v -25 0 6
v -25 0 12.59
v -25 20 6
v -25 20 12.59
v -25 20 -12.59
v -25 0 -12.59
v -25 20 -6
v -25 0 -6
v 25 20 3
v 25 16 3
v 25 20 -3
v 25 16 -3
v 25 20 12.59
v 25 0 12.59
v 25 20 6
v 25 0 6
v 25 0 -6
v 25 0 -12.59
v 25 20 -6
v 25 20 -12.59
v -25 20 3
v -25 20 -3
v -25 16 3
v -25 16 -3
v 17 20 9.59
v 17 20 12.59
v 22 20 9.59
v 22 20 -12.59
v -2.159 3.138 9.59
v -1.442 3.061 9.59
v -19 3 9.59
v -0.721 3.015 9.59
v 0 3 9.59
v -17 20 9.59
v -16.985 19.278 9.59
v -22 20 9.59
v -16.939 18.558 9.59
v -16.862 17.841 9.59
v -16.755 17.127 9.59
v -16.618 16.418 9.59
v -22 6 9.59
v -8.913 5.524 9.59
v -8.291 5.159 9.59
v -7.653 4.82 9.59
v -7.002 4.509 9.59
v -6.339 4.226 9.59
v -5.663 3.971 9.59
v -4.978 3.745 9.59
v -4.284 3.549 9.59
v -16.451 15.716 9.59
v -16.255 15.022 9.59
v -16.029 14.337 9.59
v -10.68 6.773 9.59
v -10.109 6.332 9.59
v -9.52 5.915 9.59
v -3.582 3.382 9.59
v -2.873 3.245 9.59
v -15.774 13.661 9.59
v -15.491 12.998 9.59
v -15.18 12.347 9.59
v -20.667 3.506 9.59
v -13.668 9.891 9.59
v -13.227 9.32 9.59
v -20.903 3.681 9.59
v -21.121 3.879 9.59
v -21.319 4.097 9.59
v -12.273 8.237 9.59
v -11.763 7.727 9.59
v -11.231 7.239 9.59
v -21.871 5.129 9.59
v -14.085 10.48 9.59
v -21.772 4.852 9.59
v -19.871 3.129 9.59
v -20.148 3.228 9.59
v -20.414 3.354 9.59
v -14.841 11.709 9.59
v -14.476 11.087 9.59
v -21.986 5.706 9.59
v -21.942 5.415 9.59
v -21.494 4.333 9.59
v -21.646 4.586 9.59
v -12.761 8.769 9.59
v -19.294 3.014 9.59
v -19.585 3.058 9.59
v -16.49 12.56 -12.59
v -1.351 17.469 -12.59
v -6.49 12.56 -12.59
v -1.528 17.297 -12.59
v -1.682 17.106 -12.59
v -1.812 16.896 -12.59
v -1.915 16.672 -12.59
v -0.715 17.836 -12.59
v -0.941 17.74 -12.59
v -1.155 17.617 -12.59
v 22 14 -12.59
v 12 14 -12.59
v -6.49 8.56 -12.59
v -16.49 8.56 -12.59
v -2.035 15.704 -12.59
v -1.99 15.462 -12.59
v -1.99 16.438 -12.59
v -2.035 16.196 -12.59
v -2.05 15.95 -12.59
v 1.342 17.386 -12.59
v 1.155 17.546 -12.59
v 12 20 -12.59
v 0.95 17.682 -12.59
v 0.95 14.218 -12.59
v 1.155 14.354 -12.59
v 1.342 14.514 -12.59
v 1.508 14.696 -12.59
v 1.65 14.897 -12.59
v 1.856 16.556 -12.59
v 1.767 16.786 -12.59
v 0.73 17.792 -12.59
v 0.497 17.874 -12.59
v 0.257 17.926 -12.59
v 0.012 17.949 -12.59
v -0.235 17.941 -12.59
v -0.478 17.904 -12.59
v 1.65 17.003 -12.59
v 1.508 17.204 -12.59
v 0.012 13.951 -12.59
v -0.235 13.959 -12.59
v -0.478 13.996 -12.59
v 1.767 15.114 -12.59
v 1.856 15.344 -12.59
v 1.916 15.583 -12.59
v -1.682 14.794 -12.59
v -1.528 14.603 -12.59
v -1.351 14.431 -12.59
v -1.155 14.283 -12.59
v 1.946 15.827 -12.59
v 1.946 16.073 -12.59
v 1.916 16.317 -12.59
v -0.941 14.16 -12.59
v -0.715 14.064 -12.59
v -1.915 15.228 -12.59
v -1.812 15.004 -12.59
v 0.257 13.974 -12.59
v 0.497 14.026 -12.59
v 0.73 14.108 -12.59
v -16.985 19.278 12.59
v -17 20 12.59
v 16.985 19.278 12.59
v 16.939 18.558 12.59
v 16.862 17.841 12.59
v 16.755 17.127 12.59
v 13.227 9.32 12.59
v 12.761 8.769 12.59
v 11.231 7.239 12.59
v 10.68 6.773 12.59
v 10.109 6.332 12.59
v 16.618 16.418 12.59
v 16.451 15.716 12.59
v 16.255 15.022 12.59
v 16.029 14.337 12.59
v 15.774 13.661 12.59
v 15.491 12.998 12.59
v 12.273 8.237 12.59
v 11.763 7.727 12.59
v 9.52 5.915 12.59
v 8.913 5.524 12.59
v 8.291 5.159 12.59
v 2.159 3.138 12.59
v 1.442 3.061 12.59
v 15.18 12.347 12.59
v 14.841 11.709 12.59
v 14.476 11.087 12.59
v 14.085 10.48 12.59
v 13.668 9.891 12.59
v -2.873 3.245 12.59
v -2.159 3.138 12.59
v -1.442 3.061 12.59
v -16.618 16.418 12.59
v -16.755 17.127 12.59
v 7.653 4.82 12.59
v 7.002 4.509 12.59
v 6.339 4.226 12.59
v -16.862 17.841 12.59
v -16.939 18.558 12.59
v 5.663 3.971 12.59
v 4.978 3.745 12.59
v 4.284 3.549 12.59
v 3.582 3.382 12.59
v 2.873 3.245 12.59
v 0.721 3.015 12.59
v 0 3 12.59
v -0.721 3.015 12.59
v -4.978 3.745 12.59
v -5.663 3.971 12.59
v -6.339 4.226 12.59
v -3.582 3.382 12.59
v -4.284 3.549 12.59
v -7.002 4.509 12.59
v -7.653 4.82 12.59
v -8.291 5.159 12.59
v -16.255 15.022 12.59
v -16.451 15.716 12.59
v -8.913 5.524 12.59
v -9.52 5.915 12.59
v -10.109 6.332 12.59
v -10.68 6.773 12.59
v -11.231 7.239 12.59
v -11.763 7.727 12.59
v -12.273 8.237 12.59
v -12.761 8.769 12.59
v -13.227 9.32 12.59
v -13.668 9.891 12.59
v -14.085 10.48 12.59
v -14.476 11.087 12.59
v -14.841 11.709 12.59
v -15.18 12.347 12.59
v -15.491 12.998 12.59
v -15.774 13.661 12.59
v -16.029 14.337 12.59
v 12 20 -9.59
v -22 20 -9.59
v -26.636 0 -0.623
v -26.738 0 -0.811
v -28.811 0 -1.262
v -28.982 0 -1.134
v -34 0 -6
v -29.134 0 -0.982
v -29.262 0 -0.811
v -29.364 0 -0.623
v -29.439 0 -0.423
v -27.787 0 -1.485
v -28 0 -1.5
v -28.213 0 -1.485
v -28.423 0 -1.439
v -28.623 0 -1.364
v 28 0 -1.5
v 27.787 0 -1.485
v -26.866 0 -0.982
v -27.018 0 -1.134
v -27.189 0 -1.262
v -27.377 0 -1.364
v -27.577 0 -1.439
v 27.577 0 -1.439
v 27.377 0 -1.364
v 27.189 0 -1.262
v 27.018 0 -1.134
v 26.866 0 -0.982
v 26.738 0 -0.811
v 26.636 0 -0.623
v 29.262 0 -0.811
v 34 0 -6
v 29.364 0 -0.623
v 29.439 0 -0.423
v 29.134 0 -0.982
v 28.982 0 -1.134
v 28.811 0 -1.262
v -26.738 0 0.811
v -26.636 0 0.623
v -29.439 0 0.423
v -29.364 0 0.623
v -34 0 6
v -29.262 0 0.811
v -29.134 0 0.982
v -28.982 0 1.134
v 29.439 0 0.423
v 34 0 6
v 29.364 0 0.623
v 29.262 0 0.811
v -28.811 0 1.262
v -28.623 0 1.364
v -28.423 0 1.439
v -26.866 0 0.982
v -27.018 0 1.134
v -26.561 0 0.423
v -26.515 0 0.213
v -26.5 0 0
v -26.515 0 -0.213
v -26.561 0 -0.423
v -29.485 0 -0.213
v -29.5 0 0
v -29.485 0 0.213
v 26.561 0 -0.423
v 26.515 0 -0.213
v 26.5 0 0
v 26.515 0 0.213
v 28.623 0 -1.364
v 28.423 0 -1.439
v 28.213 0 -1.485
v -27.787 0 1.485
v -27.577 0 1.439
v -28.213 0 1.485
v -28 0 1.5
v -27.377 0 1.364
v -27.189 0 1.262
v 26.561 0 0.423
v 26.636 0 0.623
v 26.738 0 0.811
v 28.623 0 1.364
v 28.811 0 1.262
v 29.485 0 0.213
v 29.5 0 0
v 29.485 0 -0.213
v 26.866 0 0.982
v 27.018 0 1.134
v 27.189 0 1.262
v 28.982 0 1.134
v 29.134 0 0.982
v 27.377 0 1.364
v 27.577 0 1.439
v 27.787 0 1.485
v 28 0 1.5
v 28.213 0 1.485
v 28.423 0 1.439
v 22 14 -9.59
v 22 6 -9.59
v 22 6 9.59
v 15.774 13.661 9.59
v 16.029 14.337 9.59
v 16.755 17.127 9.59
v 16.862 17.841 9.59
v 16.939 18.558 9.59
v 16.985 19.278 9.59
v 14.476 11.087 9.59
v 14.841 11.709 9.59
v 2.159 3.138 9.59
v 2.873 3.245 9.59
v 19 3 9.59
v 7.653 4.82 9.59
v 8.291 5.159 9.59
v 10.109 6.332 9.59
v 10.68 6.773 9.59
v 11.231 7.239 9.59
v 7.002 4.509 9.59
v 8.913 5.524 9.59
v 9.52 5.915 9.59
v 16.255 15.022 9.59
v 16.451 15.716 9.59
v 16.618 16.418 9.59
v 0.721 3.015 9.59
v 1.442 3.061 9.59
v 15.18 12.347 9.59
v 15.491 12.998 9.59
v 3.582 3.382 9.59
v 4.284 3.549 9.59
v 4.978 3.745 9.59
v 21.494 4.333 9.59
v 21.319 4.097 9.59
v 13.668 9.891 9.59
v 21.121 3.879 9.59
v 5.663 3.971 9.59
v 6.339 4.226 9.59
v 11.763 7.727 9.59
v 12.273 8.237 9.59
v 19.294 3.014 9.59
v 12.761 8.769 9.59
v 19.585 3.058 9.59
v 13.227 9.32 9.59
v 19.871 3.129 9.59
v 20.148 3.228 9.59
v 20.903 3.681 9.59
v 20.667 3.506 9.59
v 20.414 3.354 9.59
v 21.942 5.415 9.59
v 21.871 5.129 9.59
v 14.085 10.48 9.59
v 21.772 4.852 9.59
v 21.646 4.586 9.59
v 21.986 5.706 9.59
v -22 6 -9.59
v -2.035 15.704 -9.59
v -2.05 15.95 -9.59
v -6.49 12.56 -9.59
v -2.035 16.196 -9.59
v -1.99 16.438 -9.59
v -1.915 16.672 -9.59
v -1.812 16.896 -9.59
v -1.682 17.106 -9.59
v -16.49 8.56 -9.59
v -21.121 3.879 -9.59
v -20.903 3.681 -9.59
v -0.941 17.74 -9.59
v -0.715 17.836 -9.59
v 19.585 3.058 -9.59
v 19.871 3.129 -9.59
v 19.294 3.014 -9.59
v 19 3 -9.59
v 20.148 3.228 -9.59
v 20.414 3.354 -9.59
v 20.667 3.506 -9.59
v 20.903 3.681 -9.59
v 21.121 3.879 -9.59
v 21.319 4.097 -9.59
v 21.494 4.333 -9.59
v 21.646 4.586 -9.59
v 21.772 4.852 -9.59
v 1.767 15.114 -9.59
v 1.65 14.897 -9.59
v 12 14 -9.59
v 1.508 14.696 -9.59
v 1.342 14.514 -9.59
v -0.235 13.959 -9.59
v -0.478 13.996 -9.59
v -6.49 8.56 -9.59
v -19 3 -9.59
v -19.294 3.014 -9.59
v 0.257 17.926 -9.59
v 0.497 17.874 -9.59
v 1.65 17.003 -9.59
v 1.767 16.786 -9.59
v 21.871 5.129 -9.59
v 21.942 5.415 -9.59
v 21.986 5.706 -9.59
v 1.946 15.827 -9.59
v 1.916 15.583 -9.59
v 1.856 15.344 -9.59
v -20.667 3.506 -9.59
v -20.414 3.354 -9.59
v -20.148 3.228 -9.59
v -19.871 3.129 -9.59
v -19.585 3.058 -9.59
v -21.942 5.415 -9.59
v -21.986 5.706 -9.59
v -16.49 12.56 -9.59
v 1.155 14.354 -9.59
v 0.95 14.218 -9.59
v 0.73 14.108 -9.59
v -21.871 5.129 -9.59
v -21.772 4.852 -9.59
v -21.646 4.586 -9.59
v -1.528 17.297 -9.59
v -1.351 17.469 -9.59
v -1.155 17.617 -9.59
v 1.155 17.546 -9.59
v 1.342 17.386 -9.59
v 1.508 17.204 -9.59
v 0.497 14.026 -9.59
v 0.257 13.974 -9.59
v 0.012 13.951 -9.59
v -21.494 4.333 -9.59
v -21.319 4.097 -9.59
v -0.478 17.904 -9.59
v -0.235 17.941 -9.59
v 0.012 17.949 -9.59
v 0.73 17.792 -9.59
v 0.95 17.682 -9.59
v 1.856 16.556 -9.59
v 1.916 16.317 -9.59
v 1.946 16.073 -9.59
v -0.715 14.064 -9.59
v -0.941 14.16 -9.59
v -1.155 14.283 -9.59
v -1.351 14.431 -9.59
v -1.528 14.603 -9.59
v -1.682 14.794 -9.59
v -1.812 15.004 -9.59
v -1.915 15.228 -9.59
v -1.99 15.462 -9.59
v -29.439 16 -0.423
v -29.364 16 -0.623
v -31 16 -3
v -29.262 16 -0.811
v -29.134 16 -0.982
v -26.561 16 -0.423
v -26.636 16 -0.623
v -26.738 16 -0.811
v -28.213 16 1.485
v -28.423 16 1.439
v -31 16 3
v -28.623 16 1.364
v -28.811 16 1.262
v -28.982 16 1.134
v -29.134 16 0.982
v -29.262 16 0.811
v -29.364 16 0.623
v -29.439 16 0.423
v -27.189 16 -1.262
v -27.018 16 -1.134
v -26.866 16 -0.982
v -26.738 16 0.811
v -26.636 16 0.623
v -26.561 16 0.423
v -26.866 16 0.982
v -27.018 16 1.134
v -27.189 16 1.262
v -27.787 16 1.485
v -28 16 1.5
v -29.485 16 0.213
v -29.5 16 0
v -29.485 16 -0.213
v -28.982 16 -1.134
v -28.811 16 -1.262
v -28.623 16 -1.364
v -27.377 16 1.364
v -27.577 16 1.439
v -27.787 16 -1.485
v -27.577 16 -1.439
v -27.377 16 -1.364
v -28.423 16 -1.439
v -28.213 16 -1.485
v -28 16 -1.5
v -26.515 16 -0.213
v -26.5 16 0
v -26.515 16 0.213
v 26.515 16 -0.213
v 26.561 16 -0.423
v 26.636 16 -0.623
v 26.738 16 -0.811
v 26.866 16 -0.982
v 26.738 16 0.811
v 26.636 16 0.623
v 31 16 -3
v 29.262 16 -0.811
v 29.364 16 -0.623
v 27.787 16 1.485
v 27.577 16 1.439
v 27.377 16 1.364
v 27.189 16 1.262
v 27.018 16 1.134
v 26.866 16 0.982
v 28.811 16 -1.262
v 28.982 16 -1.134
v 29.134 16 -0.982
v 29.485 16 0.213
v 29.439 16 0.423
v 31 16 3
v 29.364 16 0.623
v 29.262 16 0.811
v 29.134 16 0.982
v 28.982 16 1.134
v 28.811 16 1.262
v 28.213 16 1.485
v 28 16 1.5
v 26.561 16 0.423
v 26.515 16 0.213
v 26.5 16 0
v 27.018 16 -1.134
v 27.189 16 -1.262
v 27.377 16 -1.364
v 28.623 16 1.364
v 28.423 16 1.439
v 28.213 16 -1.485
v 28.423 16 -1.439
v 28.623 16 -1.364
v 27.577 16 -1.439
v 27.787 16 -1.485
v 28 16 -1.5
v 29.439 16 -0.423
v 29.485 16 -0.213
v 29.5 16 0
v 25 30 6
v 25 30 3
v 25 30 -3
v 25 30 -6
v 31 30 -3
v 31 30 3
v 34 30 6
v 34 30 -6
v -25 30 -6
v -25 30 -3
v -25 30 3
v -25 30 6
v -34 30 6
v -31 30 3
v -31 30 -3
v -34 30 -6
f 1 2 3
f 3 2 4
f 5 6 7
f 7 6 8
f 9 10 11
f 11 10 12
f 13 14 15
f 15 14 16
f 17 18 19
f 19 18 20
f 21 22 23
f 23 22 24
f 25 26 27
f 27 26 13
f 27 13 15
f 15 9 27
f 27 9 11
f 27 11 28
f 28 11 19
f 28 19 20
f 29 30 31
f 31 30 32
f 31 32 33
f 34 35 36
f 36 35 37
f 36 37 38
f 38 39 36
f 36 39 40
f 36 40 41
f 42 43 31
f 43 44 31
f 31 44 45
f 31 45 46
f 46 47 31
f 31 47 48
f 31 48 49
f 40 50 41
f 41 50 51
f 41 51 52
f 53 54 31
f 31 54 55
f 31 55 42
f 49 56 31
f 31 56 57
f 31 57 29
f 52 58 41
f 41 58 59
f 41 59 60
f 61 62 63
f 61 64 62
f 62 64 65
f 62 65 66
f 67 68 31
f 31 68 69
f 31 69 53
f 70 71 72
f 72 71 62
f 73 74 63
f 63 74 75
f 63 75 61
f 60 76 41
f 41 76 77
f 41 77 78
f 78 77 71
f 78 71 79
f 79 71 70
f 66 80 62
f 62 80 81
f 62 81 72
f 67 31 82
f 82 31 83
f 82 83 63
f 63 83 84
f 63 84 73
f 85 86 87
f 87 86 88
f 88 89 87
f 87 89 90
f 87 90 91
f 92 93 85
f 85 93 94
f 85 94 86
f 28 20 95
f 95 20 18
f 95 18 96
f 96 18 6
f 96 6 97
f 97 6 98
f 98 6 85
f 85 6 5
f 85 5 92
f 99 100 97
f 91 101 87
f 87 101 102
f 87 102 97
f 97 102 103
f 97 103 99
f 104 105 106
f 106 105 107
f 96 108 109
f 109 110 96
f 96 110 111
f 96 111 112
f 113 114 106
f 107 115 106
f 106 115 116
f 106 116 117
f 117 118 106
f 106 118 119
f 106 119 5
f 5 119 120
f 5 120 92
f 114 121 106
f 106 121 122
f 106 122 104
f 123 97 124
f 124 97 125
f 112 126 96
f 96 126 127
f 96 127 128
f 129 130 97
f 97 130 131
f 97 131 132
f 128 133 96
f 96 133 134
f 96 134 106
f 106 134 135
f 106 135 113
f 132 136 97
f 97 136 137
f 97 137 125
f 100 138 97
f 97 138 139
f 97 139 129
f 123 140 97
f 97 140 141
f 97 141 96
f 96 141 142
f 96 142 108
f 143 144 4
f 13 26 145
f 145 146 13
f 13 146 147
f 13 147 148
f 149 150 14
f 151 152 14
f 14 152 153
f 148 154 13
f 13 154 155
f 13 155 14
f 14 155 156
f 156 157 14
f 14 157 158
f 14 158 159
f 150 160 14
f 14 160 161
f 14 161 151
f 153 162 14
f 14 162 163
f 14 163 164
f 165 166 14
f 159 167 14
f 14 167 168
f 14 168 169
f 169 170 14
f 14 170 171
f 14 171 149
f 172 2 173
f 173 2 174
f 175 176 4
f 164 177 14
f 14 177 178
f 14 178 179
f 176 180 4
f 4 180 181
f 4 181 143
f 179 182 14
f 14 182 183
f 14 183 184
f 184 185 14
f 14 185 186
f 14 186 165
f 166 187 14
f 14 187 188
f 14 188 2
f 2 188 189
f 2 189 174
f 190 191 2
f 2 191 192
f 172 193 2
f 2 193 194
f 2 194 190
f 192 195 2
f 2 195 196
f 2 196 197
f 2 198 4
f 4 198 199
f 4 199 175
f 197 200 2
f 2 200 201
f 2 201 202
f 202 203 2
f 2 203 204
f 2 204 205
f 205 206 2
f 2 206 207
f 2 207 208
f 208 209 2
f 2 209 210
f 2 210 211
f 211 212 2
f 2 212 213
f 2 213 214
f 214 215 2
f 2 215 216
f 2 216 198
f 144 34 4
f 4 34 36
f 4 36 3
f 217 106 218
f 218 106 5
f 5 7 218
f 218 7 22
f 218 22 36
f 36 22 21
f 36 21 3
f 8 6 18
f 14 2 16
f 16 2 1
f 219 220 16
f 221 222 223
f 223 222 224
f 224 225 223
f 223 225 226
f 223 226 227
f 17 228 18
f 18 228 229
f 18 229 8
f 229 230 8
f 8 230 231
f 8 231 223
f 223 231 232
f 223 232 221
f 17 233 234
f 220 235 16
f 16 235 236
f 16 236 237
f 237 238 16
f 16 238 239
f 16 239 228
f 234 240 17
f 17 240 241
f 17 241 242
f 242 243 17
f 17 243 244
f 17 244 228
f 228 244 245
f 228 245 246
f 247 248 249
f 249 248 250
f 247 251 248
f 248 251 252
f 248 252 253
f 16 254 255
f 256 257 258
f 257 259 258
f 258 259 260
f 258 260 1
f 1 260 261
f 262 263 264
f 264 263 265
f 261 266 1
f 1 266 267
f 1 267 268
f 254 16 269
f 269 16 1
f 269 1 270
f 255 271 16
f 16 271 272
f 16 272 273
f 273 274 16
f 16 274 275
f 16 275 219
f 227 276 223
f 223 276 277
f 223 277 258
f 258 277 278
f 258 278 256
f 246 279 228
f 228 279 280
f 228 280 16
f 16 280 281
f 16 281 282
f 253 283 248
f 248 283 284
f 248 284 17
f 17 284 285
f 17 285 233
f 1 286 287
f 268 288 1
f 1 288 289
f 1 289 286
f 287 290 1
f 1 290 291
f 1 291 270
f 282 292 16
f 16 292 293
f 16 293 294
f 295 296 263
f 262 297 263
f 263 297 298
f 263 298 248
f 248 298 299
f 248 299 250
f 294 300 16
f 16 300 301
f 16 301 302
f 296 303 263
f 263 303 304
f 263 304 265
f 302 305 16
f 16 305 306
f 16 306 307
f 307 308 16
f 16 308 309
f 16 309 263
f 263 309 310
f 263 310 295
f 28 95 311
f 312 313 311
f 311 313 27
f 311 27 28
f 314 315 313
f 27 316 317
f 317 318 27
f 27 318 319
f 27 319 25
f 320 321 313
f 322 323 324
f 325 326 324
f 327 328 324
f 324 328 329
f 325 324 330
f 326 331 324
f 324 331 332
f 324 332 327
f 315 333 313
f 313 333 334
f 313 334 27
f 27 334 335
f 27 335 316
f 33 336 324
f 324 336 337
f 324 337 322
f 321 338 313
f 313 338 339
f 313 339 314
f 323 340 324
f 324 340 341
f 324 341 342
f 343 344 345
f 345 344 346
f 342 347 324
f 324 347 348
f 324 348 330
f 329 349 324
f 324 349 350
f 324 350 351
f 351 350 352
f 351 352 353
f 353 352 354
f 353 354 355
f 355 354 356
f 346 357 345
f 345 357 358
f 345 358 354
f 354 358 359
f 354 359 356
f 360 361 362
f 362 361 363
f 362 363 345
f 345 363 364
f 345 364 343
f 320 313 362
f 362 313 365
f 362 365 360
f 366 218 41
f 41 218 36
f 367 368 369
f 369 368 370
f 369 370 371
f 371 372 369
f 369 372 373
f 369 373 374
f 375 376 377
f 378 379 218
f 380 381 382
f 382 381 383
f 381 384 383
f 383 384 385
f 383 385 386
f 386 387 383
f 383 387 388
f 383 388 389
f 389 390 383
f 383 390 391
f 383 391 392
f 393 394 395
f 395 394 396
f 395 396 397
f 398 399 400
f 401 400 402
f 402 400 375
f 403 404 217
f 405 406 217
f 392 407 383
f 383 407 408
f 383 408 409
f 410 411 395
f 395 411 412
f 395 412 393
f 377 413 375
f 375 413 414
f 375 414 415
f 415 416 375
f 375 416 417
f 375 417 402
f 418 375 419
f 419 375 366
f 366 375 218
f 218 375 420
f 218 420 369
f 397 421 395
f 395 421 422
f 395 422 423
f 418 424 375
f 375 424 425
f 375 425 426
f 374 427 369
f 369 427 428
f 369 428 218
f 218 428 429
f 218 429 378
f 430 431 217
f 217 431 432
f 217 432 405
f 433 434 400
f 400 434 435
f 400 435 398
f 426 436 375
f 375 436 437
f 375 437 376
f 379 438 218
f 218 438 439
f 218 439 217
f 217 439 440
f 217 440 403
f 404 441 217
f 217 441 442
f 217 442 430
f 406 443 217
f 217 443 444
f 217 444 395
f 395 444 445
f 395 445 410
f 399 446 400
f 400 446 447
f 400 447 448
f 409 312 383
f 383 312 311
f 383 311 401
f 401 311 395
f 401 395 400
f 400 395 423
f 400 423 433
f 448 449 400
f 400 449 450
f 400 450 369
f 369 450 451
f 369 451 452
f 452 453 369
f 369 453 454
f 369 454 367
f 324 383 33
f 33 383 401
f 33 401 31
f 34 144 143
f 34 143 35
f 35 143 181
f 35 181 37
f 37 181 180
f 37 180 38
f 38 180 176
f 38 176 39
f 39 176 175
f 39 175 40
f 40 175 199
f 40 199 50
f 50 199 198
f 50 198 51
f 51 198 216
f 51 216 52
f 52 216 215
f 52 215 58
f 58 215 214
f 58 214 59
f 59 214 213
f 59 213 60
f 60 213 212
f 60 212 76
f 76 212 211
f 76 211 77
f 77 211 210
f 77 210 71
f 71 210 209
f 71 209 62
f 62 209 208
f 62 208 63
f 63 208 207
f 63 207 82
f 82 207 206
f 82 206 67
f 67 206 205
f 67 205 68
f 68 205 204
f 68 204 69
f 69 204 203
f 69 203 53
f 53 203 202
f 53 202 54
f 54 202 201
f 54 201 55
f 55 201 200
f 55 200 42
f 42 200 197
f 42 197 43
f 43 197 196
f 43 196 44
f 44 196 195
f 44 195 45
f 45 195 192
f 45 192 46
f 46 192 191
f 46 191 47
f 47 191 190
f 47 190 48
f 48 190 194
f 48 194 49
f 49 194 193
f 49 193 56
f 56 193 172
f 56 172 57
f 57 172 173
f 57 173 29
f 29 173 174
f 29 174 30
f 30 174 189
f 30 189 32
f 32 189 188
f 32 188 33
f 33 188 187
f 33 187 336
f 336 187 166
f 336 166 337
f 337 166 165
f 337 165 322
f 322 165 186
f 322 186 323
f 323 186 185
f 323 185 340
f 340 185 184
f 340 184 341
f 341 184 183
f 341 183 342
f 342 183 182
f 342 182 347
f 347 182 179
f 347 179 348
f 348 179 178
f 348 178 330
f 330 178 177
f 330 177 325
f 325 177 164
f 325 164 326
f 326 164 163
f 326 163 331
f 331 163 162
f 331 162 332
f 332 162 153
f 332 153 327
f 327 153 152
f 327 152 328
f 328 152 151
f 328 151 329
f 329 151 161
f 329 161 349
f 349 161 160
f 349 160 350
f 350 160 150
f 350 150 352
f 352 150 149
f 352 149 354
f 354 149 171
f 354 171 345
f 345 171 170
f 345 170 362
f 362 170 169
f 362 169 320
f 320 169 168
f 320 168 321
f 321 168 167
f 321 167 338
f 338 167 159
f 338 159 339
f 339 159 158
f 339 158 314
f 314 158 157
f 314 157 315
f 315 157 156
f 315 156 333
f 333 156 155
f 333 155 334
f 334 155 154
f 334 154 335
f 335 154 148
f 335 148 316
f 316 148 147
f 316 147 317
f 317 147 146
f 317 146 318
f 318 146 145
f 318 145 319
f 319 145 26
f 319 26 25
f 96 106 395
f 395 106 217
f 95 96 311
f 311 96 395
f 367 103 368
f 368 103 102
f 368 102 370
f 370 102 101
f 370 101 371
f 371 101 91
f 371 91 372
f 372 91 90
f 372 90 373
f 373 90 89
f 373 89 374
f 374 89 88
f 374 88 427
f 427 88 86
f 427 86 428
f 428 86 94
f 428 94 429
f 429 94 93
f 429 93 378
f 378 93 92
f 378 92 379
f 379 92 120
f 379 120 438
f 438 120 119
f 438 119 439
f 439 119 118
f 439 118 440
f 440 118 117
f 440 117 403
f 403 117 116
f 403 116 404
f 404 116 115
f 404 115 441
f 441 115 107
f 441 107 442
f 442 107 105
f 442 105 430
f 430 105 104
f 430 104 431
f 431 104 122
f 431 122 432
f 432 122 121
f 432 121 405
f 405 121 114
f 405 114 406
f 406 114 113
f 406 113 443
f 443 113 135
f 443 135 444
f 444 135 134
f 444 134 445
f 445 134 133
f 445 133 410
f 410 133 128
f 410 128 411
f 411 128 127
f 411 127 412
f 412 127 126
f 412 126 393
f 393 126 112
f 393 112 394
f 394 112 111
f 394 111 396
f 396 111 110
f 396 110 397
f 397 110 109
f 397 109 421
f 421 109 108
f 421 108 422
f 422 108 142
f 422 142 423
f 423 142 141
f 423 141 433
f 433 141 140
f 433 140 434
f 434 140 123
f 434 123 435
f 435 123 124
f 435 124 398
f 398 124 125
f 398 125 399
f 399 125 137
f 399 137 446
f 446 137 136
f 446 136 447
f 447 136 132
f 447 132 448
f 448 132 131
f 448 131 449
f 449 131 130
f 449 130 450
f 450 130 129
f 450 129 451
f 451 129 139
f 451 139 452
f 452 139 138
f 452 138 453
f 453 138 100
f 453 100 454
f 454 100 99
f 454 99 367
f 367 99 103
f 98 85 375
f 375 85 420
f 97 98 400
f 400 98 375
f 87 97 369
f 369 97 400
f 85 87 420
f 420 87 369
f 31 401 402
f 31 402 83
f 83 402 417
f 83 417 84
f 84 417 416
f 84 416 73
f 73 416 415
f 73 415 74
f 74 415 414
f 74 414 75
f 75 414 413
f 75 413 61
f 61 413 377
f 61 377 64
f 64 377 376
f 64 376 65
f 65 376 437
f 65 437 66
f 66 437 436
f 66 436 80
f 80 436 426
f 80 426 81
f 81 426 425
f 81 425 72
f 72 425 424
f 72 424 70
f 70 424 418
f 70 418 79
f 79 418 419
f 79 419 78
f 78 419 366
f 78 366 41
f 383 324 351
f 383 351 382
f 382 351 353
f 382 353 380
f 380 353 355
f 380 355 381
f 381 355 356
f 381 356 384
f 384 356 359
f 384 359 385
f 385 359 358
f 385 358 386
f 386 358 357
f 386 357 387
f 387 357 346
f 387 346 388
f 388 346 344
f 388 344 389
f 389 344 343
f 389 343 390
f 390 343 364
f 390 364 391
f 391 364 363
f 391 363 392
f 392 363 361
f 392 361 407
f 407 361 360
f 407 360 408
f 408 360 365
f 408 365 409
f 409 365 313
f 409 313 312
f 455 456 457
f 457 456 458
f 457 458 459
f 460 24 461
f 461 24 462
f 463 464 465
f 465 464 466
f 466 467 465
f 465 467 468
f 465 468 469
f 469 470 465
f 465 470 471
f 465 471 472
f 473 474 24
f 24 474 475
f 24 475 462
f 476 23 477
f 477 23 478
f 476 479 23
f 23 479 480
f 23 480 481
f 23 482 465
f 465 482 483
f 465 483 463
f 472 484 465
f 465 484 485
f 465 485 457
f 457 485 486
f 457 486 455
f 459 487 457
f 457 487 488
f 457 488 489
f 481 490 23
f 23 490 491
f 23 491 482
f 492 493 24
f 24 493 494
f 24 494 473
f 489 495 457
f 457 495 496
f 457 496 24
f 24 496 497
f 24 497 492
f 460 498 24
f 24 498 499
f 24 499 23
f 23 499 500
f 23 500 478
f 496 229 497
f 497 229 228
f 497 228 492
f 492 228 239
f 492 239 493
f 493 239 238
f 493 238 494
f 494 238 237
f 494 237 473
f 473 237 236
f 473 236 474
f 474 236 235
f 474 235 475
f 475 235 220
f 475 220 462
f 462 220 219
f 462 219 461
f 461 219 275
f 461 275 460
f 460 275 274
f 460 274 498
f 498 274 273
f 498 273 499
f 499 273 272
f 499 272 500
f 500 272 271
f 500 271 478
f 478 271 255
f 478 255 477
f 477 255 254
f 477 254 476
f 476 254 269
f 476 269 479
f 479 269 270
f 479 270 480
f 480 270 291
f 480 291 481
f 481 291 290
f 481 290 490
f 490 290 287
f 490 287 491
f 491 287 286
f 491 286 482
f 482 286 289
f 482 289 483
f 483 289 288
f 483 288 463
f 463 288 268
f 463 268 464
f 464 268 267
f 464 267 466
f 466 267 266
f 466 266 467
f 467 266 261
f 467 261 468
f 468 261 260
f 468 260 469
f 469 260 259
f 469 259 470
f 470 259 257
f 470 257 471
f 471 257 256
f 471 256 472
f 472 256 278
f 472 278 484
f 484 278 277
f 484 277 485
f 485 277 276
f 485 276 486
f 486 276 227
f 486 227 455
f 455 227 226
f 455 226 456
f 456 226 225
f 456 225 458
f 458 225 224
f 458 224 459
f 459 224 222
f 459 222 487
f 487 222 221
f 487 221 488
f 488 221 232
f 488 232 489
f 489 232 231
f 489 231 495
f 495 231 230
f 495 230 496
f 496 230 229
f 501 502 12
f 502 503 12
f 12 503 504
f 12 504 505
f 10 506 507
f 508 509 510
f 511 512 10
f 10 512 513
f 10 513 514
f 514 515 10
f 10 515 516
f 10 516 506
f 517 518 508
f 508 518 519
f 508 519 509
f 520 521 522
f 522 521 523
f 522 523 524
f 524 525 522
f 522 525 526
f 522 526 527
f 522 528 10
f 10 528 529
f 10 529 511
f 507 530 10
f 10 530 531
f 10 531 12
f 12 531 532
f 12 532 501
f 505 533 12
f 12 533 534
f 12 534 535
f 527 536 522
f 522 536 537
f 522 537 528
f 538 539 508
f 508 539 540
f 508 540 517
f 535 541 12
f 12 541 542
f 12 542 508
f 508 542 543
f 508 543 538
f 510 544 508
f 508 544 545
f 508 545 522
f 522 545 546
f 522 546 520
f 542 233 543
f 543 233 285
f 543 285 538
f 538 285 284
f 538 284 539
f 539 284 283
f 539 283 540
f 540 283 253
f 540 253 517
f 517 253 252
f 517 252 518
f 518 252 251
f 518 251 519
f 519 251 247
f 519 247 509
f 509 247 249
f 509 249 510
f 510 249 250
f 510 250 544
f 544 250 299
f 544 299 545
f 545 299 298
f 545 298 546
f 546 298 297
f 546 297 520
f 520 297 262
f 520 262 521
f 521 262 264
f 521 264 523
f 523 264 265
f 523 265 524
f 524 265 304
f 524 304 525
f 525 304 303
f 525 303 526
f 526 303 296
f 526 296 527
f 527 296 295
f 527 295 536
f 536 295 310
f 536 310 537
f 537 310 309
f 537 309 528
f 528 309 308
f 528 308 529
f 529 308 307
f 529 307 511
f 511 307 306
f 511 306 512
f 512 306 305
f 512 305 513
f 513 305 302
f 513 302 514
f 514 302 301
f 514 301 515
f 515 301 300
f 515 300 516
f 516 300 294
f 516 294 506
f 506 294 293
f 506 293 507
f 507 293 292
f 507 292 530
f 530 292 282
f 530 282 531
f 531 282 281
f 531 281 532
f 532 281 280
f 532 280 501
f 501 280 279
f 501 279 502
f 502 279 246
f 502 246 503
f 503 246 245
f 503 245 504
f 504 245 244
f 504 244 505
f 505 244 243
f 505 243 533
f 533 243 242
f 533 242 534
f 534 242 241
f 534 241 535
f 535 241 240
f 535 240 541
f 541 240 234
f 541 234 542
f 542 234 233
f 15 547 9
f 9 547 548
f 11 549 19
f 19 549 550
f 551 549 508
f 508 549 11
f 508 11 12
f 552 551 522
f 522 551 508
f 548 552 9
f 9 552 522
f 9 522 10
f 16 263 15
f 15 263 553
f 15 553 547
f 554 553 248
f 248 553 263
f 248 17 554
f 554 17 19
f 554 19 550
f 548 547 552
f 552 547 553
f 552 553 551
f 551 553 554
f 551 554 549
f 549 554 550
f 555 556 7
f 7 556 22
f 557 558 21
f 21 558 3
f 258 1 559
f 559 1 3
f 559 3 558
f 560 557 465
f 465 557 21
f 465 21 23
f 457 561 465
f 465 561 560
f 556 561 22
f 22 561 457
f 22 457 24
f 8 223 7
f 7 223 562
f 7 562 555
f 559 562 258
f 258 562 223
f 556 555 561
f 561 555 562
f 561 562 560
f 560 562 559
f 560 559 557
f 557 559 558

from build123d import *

# Parameters (mm, degrees)
SKETCH1_W           = 50
SKETCH1_H           = 25.18
BOSS_EXTRUDE1_DEPTH = 20
SKETCH2_W           = 44
SKETCH2_H           = 19.18
CUT_EXTRUDE1_DEPTH  = 17
CUT_EXTRUDE2_DEPTH  = 3
SKETCH5_R           = 2
SKETCH5_W           = 0.418499832
SKETCH5_H           = 1.291345909
SKETCH5_W_2         = 10
SKETCH5_H_2         = 6
SKETCH5_H_3         = 4
CUT_EXTRUDE3_DEPTH  = 3
FILLET1_R           = 3
SKETCH7_W           = 6
SKETCH7_H           = 6
SKETCH7_R           = 1.5
BOSS_EXTRUDE2_DEPTH = 16
BOSS_EXTRUDE3_DEPTH = 30


with BuildPart() as part:
    # Sketch1 → Boss-Extrude1 (new body)
    with BuildSketch(Plane(origin=(0, 0, 0), x_dir=(1, 0, 0), z_dir=(0, 1, 0))):
        Rectangle(SKETCH1_W, SKETCH1_H)
    extrude(amount=BOSS_EXTRUDE1_DEPTH)

    # Sketch2 → Cut-Extrude1 (cut)
    with BuildSketch(Plane(origin=(0, 20, 0), x_dir=(1, 0, 0), z_dir=(0, 1, 0))):
        Rectangle(SKETCH2_W, SKETCH2_H)
    extrude(amount=-CUT_EXTRUDE1_DEPTH, mode=Mode.SUBTRACT)

    # Sketch4 → Cut-Extrude2 (cut)
    with BuildSketch(Plane.XY.offset(12.59)):
        with BuildLine():
            Line((-17, 20), (17, 20))
            ThreePointArc((17, 20), (0, 3), (-17, 20))
        make_face()
    extrude(amount=-CUT_EXTRUDE2_DEPTH, mode=Mode.SUBTRACT)

    # Sketch5 → Cut-Extrude3 (cut)
    with BuildSketch(Plane(origin=(0, 0, -12.59), x_dir=(-1, 0, 0), z_dir=(0, 0, -1))):
        with Locations((0.05, 15.95)):
            Circle(SKETCH5_R)
        with Locations((-49.48479677, 33.064984315)):
            Rectangle(SKETCH5_W, SKETCH5_H)
        with Locations((-17, 17)):
            Rectangle(SKETCH5_W_2, SKETCH5_H_2)
        with Locations((11.49, 10.56)):
            Rectangle(SKETCH5_W_2, SKETCH5_H_3)
    extrude(amount=-CUT_EXTRUDE3_DEPTH, mode=Mode.SUBTRACT)

    # Fillet1
    fillet1_edges = [part.edges().sort_by_distance(p)[0] for p in [
        (22, 3, 0),
        (-22, 3, 0),
    ]]
    fillet(fillet1_edges, radius=FILLET1_R)

    # Sketch7 → Boss-Extrude2 (add)
    with BuildSketch(Plane.XZ):
        with Locations((-28, 0)):
            Rectangle(SKETCH7_W, SKETCH7_H)
        with Locations((-28, 0)):
            Circle(SKETCH7_R, mode=Mode.SUBTRACT)
        with Locations((28, 0)):
            Rectangle(SKETCH7_W, SKETCH7_H)
        with Locations((28, 0)):
            Circle(SKETCH7_R, mode=Mode.SUBTRACT)
    extrude(amount=-BOSS_EXTRUDE2_DEPTH)

    # Sketch8 → Boss-Extrude3 (add)
    with BuildSketch(Plane.XZ):
        Polygon((-25, -6), (-34, -6), (-34, 6), (-25, 6), (-25, 3), (-31, 3), (-31, -3), (-25, -3), align=None)
        Polygon((25, 3), (25, 6), (34, 6), (34, -6), (25, -6), (25, -3), (31, -3), (31, 3), align=None)
    extrude(amount=-BOSS_EXTRUDE3_DEPTH)


solid = part.part
